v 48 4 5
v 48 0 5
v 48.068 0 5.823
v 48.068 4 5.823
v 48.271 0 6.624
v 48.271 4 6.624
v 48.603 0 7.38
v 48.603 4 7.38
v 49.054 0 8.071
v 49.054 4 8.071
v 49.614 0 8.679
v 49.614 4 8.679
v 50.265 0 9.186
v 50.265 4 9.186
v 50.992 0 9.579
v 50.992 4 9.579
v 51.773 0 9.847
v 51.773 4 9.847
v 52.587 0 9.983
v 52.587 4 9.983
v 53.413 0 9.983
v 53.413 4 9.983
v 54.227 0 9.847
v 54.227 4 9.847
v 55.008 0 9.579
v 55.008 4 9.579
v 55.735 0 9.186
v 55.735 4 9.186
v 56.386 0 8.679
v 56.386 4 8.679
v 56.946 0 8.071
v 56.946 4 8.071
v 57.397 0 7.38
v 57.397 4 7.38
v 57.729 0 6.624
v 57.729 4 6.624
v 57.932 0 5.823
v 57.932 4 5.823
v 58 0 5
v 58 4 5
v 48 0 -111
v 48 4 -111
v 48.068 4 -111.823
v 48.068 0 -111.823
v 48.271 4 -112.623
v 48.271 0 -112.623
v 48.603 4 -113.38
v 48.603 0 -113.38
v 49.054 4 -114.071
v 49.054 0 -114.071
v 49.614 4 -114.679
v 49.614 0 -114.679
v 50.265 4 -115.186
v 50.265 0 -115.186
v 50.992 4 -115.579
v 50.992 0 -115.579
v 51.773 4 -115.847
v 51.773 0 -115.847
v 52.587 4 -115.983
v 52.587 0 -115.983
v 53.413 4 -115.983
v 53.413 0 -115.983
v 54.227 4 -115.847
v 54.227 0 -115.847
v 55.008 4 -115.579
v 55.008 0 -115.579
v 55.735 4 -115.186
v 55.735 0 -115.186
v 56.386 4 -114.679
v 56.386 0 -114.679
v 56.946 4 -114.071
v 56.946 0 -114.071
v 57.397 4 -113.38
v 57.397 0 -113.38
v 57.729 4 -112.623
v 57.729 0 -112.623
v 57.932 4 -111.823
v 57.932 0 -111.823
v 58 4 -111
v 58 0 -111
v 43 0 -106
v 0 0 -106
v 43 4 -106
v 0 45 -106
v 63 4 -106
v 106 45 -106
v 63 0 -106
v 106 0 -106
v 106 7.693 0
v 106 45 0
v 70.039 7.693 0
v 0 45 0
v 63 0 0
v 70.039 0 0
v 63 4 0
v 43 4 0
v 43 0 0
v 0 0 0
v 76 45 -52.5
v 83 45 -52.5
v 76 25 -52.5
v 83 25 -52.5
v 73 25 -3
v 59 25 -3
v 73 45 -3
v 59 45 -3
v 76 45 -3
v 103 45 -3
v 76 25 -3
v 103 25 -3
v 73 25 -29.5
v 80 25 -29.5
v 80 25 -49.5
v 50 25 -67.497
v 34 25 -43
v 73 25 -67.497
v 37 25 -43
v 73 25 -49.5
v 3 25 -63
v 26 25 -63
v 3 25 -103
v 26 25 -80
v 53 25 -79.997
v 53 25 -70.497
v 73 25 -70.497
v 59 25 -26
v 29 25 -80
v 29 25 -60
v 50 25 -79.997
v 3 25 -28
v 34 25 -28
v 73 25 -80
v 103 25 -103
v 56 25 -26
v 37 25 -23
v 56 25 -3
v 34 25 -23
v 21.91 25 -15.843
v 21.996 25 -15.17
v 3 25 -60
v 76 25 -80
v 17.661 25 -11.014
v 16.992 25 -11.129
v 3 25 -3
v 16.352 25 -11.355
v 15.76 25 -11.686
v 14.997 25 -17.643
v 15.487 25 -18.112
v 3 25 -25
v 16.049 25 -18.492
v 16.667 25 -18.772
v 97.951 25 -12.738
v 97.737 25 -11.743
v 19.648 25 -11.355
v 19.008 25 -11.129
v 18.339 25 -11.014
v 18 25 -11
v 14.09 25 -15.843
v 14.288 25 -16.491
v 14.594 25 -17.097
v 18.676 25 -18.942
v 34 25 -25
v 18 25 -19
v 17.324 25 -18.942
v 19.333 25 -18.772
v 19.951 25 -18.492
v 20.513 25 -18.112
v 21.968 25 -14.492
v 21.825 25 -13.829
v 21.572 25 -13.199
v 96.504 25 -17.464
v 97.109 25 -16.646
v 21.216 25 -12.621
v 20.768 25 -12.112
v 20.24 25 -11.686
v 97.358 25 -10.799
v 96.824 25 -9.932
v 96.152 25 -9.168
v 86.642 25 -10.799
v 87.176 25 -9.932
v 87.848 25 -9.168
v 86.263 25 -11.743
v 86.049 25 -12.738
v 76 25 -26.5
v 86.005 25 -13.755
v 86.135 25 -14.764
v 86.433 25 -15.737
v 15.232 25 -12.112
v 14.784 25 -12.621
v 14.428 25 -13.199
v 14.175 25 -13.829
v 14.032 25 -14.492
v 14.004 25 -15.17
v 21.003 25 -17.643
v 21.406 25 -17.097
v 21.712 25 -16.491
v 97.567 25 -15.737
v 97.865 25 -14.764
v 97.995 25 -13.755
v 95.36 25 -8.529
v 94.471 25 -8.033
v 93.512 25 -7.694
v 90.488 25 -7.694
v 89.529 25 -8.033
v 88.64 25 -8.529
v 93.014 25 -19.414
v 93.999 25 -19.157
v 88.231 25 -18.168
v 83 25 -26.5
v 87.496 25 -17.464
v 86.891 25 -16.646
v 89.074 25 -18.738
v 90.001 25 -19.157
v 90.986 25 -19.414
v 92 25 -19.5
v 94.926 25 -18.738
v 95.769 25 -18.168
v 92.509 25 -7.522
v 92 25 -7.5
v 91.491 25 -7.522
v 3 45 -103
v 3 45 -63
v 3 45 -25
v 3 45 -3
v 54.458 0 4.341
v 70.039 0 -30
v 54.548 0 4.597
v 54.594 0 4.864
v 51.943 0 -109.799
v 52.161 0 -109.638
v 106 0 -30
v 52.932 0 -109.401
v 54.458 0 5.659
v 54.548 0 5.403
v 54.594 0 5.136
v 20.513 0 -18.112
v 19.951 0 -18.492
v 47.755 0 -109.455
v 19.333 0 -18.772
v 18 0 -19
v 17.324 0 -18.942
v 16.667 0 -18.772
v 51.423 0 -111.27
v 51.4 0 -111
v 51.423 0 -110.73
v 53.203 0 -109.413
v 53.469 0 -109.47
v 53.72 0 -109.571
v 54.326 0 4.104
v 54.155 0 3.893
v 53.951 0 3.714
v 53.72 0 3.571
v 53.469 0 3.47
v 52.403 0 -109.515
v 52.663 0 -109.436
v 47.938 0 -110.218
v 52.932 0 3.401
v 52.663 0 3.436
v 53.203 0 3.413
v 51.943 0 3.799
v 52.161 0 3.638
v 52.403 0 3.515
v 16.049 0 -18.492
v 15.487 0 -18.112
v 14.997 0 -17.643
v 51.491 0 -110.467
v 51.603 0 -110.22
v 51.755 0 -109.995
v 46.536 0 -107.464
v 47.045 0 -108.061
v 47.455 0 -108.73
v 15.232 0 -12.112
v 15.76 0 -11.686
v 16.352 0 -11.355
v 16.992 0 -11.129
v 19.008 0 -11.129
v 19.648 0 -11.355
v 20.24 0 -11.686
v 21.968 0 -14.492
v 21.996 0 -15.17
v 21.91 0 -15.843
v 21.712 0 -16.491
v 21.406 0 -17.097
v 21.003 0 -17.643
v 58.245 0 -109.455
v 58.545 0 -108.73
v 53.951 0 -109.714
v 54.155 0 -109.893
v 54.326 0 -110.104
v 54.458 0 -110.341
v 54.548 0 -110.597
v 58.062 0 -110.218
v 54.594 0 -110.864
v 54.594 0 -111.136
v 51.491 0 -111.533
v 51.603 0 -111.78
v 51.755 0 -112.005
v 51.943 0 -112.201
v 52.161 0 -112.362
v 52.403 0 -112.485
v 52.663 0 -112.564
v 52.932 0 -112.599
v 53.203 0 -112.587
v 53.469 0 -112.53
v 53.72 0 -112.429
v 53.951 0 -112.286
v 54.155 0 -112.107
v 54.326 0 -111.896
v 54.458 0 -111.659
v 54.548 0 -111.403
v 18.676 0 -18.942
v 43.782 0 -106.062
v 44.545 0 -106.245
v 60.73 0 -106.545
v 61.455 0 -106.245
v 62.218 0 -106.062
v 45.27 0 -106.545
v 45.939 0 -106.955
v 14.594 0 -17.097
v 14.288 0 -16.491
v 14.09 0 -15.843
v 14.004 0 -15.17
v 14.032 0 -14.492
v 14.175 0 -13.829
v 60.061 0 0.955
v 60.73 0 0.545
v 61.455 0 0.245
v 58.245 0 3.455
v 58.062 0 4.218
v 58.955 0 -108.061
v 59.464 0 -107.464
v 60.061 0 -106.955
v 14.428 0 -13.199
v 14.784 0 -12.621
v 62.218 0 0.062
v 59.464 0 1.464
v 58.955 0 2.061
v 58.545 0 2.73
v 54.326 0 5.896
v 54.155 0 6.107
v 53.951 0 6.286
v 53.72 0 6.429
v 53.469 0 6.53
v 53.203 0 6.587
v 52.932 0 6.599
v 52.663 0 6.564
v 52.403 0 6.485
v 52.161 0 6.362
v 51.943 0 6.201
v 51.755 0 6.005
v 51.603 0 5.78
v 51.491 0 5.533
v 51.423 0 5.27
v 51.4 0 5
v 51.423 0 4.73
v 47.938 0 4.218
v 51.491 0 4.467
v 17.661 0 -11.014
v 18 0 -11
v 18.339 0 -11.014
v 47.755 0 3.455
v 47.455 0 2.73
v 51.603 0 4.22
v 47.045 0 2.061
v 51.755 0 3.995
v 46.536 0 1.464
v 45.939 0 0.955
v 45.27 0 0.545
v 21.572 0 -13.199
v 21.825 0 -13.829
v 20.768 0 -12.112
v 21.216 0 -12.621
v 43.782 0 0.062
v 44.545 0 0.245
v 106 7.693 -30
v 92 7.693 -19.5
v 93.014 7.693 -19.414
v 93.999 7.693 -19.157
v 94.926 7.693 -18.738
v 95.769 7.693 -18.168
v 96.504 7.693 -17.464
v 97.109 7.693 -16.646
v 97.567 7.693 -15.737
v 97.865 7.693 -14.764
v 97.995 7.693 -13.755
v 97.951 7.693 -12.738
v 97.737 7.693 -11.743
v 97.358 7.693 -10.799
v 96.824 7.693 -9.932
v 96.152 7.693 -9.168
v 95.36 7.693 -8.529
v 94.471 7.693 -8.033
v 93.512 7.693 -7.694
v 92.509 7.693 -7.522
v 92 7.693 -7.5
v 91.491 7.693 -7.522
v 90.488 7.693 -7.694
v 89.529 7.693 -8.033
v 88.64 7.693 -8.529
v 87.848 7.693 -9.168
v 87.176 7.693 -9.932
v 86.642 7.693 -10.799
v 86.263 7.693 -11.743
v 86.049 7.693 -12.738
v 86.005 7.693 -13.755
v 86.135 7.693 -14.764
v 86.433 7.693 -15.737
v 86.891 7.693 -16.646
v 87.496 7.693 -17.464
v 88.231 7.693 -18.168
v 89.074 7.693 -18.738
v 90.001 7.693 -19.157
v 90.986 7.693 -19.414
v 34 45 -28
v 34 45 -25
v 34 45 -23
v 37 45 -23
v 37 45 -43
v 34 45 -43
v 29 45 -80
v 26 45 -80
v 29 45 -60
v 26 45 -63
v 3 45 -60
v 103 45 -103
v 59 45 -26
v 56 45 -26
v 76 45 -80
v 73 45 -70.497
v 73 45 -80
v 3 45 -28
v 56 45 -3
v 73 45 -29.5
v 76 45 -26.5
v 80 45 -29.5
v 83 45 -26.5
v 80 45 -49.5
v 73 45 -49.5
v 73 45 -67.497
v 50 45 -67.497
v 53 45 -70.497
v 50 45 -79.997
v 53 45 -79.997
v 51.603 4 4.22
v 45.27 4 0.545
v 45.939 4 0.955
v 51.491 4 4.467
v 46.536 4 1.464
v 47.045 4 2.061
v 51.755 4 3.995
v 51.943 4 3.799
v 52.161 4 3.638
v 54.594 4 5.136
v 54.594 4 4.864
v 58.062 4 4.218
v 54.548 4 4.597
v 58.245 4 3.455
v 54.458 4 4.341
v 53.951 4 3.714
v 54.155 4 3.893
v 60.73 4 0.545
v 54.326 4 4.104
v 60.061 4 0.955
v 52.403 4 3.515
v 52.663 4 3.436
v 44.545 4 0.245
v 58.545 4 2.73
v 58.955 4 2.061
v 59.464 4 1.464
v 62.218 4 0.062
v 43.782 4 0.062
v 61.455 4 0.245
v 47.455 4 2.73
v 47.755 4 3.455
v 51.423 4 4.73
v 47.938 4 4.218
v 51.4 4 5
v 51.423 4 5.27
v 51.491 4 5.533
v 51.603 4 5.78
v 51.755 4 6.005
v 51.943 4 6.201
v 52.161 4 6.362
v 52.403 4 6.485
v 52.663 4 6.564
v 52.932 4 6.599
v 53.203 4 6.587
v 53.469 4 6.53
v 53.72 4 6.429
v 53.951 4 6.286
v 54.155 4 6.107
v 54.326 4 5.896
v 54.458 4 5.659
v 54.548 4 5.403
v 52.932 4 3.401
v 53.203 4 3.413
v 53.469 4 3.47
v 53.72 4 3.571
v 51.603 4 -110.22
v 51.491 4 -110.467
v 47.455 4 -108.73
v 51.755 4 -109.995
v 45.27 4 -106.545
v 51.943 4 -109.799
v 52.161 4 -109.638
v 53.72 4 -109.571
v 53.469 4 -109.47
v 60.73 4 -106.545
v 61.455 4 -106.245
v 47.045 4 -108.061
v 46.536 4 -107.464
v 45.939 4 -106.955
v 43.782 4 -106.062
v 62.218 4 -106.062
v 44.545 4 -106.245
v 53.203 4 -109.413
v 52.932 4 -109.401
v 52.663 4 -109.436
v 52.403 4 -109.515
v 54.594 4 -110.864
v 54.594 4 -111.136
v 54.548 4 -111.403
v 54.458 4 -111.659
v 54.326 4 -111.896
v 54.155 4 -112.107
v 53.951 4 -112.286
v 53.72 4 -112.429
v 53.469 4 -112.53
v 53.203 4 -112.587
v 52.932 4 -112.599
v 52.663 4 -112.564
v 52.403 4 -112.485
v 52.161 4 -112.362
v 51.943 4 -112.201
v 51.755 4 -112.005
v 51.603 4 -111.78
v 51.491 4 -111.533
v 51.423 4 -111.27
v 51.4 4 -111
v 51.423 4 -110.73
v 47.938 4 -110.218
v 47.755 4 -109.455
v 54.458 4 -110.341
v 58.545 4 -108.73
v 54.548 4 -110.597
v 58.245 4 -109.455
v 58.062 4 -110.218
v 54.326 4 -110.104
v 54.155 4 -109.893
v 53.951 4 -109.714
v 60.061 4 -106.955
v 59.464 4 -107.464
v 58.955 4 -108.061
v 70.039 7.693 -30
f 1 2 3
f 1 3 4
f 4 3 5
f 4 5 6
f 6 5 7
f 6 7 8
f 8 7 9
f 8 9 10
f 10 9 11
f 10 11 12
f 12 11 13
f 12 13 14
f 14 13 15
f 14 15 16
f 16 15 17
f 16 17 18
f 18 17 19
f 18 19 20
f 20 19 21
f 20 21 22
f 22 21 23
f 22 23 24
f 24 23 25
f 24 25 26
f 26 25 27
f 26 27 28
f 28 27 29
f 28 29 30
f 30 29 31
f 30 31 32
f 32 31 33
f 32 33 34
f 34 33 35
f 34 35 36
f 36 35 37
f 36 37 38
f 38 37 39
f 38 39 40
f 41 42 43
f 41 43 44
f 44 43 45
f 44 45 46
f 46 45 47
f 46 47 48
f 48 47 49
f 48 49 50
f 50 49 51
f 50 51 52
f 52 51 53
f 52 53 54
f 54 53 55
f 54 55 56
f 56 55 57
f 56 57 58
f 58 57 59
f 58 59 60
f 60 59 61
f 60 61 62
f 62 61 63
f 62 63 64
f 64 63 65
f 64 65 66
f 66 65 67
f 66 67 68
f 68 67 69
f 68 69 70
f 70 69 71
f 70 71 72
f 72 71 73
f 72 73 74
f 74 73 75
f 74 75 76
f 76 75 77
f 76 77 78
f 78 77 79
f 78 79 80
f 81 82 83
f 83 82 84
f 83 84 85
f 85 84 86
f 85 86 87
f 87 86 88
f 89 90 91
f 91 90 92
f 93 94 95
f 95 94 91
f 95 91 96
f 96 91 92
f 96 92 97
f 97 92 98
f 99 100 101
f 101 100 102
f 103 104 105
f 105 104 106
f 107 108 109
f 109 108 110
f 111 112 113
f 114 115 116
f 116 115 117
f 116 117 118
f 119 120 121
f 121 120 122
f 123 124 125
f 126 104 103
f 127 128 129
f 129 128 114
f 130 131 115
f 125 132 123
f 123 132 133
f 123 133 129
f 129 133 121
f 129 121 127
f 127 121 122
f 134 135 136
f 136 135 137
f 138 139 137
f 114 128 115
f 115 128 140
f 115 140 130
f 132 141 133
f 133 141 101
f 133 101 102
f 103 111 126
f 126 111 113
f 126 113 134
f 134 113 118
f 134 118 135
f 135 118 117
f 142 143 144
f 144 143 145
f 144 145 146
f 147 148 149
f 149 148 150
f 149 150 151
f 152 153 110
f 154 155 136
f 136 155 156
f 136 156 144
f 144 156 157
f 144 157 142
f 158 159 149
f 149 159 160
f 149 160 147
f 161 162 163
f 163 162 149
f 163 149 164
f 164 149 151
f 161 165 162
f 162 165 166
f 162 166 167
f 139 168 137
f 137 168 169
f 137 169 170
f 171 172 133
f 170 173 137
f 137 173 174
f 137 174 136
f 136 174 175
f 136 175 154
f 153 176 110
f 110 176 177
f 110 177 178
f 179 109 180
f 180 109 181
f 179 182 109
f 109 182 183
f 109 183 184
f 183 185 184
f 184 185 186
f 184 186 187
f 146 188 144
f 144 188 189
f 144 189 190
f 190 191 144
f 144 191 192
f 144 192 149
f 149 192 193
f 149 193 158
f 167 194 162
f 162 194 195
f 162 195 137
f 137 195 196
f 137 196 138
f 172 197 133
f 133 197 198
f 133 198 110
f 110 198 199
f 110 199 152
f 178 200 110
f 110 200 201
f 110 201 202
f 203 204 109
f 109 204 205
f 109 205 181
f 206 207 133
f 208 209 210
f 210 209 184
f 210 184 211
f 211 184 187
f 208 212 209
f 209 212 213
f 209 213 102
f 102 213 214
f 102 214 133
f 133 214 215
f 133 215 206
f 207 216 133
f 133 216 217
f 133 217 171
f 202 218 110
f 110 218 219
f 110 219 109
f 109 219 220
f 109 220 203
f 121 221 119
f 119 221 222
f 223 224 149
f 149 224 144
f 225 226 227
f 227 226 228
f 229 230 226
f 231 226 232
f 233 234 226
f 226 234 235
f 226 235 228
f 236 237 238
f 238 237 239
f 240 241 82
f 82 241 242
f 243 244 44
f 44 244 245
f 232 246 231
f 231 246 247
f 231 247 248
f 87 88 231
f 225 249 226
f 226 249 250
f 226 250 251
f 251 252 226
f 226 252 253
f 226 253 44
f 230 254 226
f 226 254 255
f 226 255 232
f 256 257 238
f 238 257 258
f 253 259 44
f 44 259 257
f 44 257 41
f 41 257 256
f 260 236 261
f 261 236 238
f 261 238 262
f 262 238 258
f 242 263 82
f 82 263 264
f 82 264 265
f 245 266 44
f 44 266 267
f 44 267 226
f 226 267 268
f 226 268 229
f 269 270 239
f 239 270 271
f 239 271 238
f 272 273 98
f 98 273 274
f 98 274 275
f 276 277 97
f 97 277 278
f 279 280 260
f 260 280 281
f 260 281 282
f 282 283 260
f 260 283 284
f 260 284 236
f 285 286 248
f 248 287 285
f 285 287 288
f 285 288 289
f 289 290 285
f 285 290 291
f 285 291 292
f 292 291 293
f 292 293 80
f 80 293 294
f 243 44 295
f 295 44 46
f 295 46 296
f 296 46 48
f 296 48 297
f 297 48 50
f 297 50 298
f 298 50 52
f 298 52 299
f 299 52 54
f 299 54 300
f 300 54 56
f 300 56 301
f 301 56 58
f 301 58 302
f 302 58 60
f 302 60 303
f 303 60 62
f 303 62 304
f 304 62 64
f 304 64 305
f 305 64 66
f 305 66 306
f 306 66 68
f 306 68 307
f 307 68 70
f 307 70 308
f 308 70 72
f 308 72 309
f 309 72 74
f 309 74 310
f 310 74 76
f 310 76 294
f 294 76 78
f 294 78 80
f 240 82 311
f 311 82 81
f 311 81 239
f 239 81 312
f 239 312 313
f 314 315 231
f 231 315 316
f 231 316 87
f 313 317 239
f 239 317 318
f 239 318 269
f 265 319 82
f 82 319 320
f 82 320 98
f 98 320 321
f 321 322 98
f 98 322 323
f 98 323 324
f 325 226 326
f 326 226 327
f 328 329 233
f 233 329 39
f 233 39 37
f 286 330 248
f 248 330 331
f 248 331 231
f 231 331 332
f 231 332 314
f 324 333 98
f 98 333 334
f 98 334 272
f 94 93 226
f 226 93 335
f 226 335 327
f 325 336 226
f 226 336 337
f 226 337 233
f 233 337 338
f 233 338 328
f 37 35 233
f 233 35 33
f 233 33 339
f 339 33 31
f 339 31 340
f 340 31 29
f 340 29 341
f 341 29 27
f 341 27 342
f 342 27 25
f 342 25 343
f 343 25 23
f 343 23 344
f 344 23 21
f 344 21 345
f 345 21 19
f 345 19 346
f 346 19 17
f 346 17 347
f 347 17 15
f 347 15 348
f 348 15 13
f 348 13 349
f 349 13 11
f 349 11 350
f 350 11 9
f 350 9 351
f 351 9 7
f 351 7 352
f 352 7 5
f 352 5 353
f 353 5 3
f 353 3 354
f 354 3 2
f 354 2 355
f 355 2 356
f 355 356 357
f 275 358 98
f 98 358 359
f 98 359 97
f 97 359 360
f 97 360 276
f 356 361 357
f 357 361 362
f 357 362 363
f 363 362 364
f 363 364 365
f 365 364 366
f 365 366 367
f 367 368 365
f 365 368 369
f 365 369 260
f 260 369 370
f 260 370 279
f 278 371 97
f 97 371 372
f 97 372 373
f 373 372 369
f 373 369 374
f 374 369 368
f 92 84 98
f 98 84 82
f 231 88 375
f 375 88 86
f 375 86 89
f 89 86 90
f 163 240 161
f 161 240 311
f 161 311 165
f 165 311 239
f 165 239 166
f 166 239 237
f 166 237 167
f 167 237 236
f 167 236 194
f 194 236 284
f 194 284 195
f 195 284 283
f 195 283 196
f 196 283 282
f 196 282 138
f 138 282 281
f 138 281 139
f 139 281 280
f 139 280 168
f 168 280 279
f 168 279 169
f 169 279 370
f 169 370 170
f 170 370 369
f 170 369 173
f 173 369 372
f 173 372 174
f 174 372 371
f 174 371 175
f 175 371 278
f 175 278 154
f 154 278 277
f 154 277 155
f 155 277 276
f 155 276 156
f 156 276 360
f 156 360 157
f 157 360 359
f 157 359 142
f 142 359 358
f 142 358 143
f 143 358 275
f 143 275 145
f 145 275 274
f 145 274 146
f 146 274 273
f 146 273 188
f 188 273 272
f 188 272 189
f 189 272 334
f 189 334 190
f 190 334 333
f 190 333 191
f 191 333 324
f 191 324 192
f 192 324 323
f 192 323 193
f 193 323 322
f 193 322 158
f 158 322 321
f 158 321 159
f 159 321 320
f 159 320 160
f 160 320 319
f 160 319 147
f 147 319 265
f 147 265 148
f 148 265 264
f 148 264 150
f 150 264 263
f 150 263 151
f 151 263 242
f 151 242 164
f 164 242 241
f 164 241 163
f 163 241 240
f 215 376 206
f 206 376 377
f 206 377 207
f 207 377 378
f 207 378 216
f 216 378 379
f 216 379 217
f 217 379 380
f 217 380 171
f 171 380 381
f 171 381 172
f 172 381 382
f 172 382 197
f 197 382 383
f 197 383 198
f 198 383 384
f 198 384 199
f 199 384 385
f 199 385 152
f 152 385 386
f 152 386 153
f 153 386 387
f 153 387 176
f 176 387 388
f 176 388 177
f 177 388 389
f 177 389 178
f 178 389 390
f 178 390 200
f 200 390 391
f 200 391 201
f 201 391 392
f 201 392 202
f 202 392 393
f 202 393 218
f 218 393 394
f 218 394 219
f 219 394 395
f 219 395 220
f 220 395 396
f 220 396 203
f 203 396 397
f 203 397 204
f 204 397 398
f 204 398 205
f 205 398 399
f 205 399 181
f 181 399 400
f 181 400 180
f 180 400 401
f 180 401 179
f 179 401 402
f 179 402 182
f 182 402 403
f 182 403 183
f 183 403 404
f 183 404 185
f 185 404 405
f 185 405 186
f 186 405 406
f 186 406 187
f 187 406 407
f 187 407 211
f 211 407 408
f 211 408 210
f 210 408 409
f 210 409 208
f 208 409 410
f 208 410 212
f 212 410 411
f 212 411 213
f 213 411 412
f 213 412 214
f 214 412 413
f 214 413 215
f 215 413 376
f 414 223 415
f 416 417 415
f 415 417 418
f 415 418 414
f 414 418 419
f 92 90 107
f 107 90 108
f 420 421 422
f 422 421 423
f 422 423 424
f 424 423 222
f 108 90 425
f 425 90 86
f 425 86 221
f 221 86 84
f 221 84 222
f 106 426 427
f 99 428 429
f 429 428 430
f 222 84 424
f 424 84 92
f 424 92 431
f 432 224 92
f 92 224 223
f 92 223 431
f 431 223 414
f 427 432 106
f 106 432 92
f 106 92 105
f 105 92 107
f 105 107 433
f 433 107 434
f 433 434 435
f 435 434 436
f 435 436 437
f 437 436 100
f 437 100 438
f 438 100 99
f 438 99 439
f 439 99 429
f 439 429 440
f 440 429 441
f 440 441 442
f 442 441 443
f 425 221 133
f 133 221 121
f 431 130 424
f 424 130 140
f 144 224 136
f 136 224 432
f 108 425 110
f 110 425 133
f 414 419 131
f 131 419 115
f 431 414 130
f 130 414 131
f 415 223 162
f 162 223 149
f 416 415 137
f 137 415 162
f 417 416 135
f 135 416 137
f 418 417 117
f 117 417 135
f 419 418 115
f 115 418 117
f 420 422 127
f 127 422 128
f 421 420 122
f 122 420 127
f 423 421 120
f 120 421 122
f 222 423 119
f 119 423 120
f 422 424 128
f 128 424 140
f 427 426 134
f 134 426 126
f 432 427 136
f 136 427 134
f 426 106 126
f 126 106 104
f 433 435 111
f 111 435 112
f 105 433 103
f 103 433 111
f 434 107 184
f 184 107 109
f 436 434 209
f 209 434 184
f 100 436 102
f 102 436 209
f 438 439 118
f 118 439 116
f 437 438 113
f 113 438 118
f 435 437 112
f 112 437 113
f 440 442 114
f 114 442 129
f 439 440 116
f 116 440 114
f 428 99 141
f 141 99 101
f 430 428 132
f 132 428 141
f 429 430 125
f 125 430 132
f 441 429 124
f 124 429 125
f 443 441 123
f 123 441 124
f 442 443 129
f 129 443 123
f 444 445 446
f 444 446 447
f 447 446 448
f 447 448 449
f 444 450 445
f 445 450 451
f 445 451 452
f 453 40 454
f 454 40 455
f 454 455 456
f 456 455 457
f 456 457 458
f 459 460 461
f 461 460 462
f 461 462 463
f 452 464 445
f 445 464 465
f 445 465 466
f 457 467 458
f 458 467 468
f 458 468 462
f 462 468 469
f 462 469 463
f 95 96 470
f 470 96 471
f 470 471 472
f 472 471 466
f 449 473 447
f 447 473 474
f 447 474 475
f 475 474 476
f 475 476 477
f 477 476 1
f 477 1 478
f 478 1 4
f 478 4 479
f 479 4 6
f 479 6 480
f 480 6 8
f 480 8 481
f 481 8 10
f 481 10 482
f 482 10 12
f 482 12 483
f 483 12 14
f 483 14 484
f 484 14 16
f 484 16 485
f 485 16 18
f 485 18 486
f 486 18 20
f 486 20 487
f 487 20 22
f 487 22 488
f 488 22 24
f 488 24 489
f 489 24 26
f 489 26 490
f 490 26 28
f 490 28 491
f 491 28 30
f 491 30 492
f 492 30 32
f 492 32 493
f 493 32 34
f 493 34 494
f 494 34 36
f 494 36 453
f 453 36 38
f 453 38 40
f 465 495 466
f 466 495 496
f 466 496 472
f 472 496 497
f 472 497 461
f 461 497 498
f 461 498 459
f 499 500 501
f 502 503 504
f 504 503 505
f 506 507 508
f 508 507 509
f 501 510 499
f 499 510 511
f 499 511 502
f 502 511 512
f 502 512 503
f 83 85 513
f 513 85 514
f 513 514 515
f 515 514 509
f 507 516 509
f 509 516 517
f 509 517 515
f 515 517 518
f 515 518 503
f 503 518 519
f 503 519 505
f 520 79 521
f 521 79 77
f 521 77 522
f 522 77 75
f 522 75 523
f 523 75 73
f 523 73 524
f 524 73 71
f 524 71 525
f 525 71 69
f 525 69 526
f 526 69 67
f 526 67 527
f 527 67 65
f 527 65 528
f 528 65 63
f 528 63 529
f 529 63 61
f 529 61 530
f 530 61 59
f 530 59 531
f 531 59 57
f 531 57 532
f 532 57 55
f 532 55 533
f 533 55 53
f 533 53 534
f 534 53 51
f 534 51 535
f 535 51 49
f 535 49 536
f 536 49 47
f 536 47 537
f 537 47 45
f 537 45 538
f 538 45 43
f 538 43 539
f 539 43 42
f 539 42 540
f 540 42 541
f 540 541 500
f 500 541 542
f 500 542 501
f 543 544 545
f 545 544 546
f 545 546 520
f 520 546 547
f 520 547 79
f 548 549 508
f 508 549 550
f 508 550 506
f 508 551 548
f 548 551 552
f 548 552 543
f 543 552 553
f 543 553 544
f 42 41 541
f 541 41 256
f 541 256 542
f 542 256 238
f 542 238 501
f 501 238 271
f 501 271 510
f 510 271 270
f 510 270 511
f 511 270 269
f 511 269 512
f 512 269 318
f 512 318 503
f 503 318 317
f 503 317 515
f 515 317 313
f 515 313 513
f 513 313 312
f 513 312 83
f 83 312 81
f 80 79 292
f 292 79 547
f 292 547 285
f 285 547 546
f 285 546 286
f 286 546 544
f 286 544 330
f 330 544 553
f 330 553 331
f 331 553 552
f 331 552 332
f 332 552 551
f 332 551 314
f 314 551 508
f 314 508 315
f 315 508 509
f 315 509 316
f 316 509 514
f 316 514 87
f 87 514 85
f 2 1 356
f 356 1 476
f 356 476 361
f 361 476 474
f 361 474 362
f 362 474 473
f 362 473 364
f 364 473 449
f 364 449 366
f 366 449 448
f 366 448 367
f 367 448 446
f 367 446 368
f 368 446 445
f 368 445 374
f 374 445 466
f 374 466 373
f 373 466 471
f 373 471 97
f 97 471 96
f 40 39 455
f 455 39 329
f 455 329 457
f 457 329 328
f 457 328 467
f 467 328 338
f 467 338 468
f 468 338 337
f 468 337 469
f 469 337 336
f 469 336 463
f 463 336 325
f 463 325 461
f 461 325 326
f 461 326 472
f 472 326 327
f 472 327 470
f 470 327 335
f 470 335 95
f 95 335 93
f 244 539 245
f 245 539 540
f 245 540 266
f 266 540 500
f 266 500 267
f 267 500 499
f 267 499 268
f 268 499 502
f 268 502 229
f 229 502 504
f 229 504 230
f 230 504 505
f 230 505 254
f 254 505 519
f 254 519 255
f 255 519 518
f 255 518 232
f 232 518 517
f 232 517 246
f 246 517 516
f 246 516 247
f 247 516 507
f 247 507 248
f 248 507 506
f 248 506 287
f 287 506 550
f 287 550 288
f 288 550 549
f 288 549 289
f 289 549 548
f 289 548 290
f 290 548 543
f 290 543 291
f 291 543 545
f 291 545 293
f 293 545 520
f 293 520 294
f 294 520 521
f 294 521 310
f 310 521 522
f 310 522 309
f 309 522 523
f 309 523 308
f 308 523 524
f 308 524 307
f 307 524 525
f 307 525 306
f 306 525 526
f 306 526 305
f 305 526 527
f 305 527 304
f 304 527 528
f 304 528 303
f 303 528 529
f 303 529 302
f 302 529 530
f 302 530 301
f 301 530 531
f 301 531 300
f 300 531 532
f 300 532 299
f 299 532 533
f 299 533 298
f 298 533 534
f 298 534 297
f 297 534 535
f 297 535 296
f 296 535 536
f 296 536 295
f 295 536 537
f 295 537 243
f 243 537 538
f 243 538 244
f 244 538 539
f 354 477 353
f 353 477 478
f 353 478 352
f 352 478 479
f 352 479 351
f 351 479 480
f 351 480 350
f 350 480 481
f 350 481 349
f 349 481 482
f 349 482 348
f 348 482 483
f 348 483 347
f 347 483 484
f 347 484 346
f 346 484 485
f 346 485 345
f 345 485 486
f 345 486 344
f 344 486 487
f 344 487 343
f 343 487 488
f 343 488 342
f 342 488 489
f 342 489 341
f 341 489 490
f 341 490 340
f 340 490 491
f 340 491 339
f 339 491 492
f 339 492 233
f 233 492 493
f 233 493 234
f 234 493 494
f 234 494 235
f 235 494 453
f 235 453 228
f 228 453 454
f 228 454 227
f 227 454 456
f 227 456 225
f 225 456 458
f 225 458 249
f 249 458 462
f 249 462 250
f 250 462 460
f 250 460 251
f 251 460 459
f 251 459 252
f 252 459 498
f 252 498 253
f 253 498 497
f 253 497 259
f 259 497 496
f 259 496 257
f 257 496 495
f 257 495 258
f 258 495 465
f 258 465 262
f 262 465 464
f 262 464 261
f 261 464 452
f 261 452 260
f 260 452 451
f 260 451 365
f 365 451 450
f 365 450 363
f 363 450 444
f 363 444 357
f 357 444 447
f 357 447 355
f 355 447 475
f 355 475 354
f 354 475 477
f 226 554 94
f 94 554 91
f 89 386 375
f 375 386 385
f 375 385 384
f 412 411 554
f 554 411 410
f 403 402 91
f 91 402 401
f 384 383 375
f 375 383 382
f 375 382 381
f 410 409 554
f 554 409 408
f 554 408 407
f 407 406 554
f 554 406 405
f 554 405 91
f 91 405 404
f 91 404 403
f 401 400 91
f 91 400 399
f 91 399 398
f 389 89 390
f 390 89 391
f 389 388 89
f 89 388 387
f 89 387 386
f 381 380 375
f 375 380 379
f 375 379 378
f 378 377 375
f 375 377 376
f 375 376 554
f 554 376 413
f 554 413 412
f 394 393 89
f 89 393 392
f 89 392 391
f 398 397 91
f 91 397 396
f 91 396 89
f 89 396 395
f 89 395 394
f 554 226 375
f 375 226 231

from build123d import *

# Parameters (mm, degrees)
SKETCH2_W           = 106
SKETCH2_H           = 106
SKETCH2_R           = 4
SKETCH2_R_2         = 6
BOSS_EXTRUDE1_DEPTH = 25
SKETCH3_W           = 106
SKETCH3_H           = 106
SKETCH3_W_2         = 100
SKETCH3_H_2         = 100
BOSS_EXTRUDE2_DEPTH = 20
SKETCH5_W           = 3
SKETCH5_H           = 23
BOSS_EXTRUDE3_DEPTH = 20
SKETCH7_W           = 20
SKETCH7_H           = 3
BOSS_EXTRUDE4_DEPTH = 20
SKETCH10_W          = 10
SKETCH10_H          = 4
BOSS_EXTRUDE5_DEPTH = 10
SKETCH11_W          = 10
SKETCH11_H          = 4
BOSS_EXTRUDE6_DEPTH = 10
FILLET2_RADIUS      = 5
FILLET2_LENGTH      = 4
FILLET3_R           = 5
FILLET4_R           = 5
FILLET5_R           = 5
SKETCH13_R          = 1.6
CUT_EXTRUDE2_DEPTH  = 163.397660082
SKETCH14_W          = 35.96051594
SKETCH14_H          = 7.693498276
CUT_EXTRUDE3_DEPTH  = 30


with BuildPart() as part:
    # Sketch2 → Boss-Extrude1 (new body)
    with BuildSketch(Plane(origin=(0, 0, 0), x_dir=(1, 0, 0), z_dir=(0, 1, 0))):
        with Locations((53, 53)):
            Rectangle(SKETCH2_W, SKETCH2_H)
        with Locations(Location((18, 15, 0), (0, 0, 270))):
            Circle(SKETCH2_R, mode=Mode.SUBTRACT)
        with Locations(Location((92, 13.5, 0), (0, 0, 270))):
            Circle(SKETCH2_R_2, mode=Mode.SUBTRACT)
    extrude(amount=BOSS_EXTRUDE1_DEPTH)

    # Sketch3 → Boss-Extrude2 (add)
    with BuildSketch(Plane(origin=(0, 25, 0), x_dir=(1, 0, 0), z_dir=(0, 1, 0))):
        with Locations((53, 53)):
            Rectangle(SKETCH3_W, SKETCH3_H)
        with Locations((53, 53)):
            Rectangle(SKETCH3_W_2, SKETCH3_H_2, mode=Mode.SUBTRACT)
    extrude(amount=BOSS_EXTRUDE2_DEPTH)

    # Sketch5 → Boss-Extrude3 (add)
    with BuildSketch(Plane(origin=(0, 25, 0), x_dir=(1, 0, 0), z_dir=(0, 1, 0))):
        Polygon((3, 28), (3, 25), (34, 25), (34, 23), (37, 23), (37, 43), (34, 43), (34, 28), align=None)
        Polygon((83, 52.5), (83, 26.5), (76, 26.5), (76, 3), (73, 3), (73, 29.5), (80, 29.5), (80, 49.5), (73, 49.5), (73, 52.5), align=None)
        Polygon((3, 63), (3, 60), (29, 60), (29, 80), (26, 80), (26, 63), align=None)
        with Locations((57.5, 14.5)):
            Rectangle(SKETCH5_W, SKETCH5_H)
    extrude(amount=BOSS_EXTRUDE3_DEPTH)

    # Sketch7 → Boss-Extrude4 (add)
    with BuildSketch(Plane(origin=(0, 25, 0), x_dir=(1, 0, 0), z_dir=(0, 1, 0))):
        Polygon((50, 67.496539), (53, 67.496539), (53, 70.496539), (53, 79.996539), (50, 79.996539), align=None)
        with Locations((63, 68.996539)):
            Rectangle(SKETCH7_W, SKETCH7_H)
        Polygon((73, 67.496539), (73, 52.5), (76, 52.5), (76, 80), (73, 80), (73, 70.496539), align=None)
    extrude(amount=BOSS_EXTRUDE4_DEPTH)

    # Sketch10 → Boss-Extrude5 (add)
    with BuildSketch(Plane.XY):
        with Locations((53, 2)):
            Rectangle(SKETCH10_W, SKETCH10_H)
    extrude(amount=BOSS_EXTRUDE5_DEPTH)

    # Sketch11 → Boss-Extrude6 (add)
    with BuildSketch(Plane(origin=(0, 0, -106), x_dir=(-1, 0, 0), z_dir=(0, 0, -1))):
        with Locations((-53, 2)):
            Rectangle(SKETCH11_W, SKETCH11_H)
    extrude(amount=BOSS_EXTRUDE6_DEPTH)

    # Fillet2: full round fillet: the end face becomes a half cylinder, R = half its width
    fillet2_face = Plane((53, 2, -116), x_dir=(0, -1, 0), z_dir=(0, 0, -1))  # on the end face: x along it, z out of the body
    fillet2_slab = fillet2_face.offset(-FILLET2_RADIUS / 2) * Box(FILLET2_LENGTH, 2 * FILLET2_RADIUS, FILLET2_RADIUS, mode=Mode.PRIVATE)  # the body's end, R deep
    fillet2_round = Plane((53, 2, -111), x_dir=(0, 0, -1), z_dir=(0, -1, 0)) * Cylinder(FILLET2_RADIUS, FILLET2_LENGTH, mode=Mode.PRIVATE)  # its axis R under the face
    add(fillet2_slab - fillet2_round, mode=Mode.SUBTRACT)

    # Fillet3
    fillet3_edges = [part.edges().sort_by_distance(p)[0] for p in [
        (48, 2, -106),
        (58, 2, -106),
    ]]
    fillet(fillet3_edges, radius=FILLET3_R - 0.0001)  # a hair under: the kernel refuses the full size

    # Fillet4
    fillet4_edges = [part.edges().sort_by_distance(p)[0] for p in [
        (48, 2, 0),
        (58, 2, 0),
    ]]
    fillet(fillet4_edges, radius=FILLET4_R)

    # Fillet5
    fillet5_edges = [part.edges().sort_by_distance(p)[0] for p in [
        (48, 2, 10),
        (58, 2, 10),
    ]]
    fillet(fillet5_edges, radius=FILLET5_R - 0.0001)  # a hair under: the kernel refuses the full size

    # Sketch13 → Cut-Extrude2 (cut, through all)
    with BuildSketch(Plane(origin=(0, 4, 0), x_dir=(1, 0, 0), z_dir=(0, 1, 0))):
        with Locations(Location((53, -5, 0), (0, 0, 180))):
            Circle(SKETCH13_R)
        with Locations(Location((53, 111, 0), (0, 0, 180))):
            Circle(SKETCH13_R)
    extrude(amount=-CUT_EXTRUDE2_DEPTH, mode=Mode.SUBTRACT)

    # Sketch14 → Cut-Extrude3 (cut)
    with BuildSketch(Plane.XY):
        with Locations((88.01974203, 3.846749138)):
            Rectangle(SKETCH14_W, SKETCH14_H)
    extrude(amount=-CUT_EXTRUDE3_DEPTH, mode=Mode.SUBTRACT)


solid = part.part
